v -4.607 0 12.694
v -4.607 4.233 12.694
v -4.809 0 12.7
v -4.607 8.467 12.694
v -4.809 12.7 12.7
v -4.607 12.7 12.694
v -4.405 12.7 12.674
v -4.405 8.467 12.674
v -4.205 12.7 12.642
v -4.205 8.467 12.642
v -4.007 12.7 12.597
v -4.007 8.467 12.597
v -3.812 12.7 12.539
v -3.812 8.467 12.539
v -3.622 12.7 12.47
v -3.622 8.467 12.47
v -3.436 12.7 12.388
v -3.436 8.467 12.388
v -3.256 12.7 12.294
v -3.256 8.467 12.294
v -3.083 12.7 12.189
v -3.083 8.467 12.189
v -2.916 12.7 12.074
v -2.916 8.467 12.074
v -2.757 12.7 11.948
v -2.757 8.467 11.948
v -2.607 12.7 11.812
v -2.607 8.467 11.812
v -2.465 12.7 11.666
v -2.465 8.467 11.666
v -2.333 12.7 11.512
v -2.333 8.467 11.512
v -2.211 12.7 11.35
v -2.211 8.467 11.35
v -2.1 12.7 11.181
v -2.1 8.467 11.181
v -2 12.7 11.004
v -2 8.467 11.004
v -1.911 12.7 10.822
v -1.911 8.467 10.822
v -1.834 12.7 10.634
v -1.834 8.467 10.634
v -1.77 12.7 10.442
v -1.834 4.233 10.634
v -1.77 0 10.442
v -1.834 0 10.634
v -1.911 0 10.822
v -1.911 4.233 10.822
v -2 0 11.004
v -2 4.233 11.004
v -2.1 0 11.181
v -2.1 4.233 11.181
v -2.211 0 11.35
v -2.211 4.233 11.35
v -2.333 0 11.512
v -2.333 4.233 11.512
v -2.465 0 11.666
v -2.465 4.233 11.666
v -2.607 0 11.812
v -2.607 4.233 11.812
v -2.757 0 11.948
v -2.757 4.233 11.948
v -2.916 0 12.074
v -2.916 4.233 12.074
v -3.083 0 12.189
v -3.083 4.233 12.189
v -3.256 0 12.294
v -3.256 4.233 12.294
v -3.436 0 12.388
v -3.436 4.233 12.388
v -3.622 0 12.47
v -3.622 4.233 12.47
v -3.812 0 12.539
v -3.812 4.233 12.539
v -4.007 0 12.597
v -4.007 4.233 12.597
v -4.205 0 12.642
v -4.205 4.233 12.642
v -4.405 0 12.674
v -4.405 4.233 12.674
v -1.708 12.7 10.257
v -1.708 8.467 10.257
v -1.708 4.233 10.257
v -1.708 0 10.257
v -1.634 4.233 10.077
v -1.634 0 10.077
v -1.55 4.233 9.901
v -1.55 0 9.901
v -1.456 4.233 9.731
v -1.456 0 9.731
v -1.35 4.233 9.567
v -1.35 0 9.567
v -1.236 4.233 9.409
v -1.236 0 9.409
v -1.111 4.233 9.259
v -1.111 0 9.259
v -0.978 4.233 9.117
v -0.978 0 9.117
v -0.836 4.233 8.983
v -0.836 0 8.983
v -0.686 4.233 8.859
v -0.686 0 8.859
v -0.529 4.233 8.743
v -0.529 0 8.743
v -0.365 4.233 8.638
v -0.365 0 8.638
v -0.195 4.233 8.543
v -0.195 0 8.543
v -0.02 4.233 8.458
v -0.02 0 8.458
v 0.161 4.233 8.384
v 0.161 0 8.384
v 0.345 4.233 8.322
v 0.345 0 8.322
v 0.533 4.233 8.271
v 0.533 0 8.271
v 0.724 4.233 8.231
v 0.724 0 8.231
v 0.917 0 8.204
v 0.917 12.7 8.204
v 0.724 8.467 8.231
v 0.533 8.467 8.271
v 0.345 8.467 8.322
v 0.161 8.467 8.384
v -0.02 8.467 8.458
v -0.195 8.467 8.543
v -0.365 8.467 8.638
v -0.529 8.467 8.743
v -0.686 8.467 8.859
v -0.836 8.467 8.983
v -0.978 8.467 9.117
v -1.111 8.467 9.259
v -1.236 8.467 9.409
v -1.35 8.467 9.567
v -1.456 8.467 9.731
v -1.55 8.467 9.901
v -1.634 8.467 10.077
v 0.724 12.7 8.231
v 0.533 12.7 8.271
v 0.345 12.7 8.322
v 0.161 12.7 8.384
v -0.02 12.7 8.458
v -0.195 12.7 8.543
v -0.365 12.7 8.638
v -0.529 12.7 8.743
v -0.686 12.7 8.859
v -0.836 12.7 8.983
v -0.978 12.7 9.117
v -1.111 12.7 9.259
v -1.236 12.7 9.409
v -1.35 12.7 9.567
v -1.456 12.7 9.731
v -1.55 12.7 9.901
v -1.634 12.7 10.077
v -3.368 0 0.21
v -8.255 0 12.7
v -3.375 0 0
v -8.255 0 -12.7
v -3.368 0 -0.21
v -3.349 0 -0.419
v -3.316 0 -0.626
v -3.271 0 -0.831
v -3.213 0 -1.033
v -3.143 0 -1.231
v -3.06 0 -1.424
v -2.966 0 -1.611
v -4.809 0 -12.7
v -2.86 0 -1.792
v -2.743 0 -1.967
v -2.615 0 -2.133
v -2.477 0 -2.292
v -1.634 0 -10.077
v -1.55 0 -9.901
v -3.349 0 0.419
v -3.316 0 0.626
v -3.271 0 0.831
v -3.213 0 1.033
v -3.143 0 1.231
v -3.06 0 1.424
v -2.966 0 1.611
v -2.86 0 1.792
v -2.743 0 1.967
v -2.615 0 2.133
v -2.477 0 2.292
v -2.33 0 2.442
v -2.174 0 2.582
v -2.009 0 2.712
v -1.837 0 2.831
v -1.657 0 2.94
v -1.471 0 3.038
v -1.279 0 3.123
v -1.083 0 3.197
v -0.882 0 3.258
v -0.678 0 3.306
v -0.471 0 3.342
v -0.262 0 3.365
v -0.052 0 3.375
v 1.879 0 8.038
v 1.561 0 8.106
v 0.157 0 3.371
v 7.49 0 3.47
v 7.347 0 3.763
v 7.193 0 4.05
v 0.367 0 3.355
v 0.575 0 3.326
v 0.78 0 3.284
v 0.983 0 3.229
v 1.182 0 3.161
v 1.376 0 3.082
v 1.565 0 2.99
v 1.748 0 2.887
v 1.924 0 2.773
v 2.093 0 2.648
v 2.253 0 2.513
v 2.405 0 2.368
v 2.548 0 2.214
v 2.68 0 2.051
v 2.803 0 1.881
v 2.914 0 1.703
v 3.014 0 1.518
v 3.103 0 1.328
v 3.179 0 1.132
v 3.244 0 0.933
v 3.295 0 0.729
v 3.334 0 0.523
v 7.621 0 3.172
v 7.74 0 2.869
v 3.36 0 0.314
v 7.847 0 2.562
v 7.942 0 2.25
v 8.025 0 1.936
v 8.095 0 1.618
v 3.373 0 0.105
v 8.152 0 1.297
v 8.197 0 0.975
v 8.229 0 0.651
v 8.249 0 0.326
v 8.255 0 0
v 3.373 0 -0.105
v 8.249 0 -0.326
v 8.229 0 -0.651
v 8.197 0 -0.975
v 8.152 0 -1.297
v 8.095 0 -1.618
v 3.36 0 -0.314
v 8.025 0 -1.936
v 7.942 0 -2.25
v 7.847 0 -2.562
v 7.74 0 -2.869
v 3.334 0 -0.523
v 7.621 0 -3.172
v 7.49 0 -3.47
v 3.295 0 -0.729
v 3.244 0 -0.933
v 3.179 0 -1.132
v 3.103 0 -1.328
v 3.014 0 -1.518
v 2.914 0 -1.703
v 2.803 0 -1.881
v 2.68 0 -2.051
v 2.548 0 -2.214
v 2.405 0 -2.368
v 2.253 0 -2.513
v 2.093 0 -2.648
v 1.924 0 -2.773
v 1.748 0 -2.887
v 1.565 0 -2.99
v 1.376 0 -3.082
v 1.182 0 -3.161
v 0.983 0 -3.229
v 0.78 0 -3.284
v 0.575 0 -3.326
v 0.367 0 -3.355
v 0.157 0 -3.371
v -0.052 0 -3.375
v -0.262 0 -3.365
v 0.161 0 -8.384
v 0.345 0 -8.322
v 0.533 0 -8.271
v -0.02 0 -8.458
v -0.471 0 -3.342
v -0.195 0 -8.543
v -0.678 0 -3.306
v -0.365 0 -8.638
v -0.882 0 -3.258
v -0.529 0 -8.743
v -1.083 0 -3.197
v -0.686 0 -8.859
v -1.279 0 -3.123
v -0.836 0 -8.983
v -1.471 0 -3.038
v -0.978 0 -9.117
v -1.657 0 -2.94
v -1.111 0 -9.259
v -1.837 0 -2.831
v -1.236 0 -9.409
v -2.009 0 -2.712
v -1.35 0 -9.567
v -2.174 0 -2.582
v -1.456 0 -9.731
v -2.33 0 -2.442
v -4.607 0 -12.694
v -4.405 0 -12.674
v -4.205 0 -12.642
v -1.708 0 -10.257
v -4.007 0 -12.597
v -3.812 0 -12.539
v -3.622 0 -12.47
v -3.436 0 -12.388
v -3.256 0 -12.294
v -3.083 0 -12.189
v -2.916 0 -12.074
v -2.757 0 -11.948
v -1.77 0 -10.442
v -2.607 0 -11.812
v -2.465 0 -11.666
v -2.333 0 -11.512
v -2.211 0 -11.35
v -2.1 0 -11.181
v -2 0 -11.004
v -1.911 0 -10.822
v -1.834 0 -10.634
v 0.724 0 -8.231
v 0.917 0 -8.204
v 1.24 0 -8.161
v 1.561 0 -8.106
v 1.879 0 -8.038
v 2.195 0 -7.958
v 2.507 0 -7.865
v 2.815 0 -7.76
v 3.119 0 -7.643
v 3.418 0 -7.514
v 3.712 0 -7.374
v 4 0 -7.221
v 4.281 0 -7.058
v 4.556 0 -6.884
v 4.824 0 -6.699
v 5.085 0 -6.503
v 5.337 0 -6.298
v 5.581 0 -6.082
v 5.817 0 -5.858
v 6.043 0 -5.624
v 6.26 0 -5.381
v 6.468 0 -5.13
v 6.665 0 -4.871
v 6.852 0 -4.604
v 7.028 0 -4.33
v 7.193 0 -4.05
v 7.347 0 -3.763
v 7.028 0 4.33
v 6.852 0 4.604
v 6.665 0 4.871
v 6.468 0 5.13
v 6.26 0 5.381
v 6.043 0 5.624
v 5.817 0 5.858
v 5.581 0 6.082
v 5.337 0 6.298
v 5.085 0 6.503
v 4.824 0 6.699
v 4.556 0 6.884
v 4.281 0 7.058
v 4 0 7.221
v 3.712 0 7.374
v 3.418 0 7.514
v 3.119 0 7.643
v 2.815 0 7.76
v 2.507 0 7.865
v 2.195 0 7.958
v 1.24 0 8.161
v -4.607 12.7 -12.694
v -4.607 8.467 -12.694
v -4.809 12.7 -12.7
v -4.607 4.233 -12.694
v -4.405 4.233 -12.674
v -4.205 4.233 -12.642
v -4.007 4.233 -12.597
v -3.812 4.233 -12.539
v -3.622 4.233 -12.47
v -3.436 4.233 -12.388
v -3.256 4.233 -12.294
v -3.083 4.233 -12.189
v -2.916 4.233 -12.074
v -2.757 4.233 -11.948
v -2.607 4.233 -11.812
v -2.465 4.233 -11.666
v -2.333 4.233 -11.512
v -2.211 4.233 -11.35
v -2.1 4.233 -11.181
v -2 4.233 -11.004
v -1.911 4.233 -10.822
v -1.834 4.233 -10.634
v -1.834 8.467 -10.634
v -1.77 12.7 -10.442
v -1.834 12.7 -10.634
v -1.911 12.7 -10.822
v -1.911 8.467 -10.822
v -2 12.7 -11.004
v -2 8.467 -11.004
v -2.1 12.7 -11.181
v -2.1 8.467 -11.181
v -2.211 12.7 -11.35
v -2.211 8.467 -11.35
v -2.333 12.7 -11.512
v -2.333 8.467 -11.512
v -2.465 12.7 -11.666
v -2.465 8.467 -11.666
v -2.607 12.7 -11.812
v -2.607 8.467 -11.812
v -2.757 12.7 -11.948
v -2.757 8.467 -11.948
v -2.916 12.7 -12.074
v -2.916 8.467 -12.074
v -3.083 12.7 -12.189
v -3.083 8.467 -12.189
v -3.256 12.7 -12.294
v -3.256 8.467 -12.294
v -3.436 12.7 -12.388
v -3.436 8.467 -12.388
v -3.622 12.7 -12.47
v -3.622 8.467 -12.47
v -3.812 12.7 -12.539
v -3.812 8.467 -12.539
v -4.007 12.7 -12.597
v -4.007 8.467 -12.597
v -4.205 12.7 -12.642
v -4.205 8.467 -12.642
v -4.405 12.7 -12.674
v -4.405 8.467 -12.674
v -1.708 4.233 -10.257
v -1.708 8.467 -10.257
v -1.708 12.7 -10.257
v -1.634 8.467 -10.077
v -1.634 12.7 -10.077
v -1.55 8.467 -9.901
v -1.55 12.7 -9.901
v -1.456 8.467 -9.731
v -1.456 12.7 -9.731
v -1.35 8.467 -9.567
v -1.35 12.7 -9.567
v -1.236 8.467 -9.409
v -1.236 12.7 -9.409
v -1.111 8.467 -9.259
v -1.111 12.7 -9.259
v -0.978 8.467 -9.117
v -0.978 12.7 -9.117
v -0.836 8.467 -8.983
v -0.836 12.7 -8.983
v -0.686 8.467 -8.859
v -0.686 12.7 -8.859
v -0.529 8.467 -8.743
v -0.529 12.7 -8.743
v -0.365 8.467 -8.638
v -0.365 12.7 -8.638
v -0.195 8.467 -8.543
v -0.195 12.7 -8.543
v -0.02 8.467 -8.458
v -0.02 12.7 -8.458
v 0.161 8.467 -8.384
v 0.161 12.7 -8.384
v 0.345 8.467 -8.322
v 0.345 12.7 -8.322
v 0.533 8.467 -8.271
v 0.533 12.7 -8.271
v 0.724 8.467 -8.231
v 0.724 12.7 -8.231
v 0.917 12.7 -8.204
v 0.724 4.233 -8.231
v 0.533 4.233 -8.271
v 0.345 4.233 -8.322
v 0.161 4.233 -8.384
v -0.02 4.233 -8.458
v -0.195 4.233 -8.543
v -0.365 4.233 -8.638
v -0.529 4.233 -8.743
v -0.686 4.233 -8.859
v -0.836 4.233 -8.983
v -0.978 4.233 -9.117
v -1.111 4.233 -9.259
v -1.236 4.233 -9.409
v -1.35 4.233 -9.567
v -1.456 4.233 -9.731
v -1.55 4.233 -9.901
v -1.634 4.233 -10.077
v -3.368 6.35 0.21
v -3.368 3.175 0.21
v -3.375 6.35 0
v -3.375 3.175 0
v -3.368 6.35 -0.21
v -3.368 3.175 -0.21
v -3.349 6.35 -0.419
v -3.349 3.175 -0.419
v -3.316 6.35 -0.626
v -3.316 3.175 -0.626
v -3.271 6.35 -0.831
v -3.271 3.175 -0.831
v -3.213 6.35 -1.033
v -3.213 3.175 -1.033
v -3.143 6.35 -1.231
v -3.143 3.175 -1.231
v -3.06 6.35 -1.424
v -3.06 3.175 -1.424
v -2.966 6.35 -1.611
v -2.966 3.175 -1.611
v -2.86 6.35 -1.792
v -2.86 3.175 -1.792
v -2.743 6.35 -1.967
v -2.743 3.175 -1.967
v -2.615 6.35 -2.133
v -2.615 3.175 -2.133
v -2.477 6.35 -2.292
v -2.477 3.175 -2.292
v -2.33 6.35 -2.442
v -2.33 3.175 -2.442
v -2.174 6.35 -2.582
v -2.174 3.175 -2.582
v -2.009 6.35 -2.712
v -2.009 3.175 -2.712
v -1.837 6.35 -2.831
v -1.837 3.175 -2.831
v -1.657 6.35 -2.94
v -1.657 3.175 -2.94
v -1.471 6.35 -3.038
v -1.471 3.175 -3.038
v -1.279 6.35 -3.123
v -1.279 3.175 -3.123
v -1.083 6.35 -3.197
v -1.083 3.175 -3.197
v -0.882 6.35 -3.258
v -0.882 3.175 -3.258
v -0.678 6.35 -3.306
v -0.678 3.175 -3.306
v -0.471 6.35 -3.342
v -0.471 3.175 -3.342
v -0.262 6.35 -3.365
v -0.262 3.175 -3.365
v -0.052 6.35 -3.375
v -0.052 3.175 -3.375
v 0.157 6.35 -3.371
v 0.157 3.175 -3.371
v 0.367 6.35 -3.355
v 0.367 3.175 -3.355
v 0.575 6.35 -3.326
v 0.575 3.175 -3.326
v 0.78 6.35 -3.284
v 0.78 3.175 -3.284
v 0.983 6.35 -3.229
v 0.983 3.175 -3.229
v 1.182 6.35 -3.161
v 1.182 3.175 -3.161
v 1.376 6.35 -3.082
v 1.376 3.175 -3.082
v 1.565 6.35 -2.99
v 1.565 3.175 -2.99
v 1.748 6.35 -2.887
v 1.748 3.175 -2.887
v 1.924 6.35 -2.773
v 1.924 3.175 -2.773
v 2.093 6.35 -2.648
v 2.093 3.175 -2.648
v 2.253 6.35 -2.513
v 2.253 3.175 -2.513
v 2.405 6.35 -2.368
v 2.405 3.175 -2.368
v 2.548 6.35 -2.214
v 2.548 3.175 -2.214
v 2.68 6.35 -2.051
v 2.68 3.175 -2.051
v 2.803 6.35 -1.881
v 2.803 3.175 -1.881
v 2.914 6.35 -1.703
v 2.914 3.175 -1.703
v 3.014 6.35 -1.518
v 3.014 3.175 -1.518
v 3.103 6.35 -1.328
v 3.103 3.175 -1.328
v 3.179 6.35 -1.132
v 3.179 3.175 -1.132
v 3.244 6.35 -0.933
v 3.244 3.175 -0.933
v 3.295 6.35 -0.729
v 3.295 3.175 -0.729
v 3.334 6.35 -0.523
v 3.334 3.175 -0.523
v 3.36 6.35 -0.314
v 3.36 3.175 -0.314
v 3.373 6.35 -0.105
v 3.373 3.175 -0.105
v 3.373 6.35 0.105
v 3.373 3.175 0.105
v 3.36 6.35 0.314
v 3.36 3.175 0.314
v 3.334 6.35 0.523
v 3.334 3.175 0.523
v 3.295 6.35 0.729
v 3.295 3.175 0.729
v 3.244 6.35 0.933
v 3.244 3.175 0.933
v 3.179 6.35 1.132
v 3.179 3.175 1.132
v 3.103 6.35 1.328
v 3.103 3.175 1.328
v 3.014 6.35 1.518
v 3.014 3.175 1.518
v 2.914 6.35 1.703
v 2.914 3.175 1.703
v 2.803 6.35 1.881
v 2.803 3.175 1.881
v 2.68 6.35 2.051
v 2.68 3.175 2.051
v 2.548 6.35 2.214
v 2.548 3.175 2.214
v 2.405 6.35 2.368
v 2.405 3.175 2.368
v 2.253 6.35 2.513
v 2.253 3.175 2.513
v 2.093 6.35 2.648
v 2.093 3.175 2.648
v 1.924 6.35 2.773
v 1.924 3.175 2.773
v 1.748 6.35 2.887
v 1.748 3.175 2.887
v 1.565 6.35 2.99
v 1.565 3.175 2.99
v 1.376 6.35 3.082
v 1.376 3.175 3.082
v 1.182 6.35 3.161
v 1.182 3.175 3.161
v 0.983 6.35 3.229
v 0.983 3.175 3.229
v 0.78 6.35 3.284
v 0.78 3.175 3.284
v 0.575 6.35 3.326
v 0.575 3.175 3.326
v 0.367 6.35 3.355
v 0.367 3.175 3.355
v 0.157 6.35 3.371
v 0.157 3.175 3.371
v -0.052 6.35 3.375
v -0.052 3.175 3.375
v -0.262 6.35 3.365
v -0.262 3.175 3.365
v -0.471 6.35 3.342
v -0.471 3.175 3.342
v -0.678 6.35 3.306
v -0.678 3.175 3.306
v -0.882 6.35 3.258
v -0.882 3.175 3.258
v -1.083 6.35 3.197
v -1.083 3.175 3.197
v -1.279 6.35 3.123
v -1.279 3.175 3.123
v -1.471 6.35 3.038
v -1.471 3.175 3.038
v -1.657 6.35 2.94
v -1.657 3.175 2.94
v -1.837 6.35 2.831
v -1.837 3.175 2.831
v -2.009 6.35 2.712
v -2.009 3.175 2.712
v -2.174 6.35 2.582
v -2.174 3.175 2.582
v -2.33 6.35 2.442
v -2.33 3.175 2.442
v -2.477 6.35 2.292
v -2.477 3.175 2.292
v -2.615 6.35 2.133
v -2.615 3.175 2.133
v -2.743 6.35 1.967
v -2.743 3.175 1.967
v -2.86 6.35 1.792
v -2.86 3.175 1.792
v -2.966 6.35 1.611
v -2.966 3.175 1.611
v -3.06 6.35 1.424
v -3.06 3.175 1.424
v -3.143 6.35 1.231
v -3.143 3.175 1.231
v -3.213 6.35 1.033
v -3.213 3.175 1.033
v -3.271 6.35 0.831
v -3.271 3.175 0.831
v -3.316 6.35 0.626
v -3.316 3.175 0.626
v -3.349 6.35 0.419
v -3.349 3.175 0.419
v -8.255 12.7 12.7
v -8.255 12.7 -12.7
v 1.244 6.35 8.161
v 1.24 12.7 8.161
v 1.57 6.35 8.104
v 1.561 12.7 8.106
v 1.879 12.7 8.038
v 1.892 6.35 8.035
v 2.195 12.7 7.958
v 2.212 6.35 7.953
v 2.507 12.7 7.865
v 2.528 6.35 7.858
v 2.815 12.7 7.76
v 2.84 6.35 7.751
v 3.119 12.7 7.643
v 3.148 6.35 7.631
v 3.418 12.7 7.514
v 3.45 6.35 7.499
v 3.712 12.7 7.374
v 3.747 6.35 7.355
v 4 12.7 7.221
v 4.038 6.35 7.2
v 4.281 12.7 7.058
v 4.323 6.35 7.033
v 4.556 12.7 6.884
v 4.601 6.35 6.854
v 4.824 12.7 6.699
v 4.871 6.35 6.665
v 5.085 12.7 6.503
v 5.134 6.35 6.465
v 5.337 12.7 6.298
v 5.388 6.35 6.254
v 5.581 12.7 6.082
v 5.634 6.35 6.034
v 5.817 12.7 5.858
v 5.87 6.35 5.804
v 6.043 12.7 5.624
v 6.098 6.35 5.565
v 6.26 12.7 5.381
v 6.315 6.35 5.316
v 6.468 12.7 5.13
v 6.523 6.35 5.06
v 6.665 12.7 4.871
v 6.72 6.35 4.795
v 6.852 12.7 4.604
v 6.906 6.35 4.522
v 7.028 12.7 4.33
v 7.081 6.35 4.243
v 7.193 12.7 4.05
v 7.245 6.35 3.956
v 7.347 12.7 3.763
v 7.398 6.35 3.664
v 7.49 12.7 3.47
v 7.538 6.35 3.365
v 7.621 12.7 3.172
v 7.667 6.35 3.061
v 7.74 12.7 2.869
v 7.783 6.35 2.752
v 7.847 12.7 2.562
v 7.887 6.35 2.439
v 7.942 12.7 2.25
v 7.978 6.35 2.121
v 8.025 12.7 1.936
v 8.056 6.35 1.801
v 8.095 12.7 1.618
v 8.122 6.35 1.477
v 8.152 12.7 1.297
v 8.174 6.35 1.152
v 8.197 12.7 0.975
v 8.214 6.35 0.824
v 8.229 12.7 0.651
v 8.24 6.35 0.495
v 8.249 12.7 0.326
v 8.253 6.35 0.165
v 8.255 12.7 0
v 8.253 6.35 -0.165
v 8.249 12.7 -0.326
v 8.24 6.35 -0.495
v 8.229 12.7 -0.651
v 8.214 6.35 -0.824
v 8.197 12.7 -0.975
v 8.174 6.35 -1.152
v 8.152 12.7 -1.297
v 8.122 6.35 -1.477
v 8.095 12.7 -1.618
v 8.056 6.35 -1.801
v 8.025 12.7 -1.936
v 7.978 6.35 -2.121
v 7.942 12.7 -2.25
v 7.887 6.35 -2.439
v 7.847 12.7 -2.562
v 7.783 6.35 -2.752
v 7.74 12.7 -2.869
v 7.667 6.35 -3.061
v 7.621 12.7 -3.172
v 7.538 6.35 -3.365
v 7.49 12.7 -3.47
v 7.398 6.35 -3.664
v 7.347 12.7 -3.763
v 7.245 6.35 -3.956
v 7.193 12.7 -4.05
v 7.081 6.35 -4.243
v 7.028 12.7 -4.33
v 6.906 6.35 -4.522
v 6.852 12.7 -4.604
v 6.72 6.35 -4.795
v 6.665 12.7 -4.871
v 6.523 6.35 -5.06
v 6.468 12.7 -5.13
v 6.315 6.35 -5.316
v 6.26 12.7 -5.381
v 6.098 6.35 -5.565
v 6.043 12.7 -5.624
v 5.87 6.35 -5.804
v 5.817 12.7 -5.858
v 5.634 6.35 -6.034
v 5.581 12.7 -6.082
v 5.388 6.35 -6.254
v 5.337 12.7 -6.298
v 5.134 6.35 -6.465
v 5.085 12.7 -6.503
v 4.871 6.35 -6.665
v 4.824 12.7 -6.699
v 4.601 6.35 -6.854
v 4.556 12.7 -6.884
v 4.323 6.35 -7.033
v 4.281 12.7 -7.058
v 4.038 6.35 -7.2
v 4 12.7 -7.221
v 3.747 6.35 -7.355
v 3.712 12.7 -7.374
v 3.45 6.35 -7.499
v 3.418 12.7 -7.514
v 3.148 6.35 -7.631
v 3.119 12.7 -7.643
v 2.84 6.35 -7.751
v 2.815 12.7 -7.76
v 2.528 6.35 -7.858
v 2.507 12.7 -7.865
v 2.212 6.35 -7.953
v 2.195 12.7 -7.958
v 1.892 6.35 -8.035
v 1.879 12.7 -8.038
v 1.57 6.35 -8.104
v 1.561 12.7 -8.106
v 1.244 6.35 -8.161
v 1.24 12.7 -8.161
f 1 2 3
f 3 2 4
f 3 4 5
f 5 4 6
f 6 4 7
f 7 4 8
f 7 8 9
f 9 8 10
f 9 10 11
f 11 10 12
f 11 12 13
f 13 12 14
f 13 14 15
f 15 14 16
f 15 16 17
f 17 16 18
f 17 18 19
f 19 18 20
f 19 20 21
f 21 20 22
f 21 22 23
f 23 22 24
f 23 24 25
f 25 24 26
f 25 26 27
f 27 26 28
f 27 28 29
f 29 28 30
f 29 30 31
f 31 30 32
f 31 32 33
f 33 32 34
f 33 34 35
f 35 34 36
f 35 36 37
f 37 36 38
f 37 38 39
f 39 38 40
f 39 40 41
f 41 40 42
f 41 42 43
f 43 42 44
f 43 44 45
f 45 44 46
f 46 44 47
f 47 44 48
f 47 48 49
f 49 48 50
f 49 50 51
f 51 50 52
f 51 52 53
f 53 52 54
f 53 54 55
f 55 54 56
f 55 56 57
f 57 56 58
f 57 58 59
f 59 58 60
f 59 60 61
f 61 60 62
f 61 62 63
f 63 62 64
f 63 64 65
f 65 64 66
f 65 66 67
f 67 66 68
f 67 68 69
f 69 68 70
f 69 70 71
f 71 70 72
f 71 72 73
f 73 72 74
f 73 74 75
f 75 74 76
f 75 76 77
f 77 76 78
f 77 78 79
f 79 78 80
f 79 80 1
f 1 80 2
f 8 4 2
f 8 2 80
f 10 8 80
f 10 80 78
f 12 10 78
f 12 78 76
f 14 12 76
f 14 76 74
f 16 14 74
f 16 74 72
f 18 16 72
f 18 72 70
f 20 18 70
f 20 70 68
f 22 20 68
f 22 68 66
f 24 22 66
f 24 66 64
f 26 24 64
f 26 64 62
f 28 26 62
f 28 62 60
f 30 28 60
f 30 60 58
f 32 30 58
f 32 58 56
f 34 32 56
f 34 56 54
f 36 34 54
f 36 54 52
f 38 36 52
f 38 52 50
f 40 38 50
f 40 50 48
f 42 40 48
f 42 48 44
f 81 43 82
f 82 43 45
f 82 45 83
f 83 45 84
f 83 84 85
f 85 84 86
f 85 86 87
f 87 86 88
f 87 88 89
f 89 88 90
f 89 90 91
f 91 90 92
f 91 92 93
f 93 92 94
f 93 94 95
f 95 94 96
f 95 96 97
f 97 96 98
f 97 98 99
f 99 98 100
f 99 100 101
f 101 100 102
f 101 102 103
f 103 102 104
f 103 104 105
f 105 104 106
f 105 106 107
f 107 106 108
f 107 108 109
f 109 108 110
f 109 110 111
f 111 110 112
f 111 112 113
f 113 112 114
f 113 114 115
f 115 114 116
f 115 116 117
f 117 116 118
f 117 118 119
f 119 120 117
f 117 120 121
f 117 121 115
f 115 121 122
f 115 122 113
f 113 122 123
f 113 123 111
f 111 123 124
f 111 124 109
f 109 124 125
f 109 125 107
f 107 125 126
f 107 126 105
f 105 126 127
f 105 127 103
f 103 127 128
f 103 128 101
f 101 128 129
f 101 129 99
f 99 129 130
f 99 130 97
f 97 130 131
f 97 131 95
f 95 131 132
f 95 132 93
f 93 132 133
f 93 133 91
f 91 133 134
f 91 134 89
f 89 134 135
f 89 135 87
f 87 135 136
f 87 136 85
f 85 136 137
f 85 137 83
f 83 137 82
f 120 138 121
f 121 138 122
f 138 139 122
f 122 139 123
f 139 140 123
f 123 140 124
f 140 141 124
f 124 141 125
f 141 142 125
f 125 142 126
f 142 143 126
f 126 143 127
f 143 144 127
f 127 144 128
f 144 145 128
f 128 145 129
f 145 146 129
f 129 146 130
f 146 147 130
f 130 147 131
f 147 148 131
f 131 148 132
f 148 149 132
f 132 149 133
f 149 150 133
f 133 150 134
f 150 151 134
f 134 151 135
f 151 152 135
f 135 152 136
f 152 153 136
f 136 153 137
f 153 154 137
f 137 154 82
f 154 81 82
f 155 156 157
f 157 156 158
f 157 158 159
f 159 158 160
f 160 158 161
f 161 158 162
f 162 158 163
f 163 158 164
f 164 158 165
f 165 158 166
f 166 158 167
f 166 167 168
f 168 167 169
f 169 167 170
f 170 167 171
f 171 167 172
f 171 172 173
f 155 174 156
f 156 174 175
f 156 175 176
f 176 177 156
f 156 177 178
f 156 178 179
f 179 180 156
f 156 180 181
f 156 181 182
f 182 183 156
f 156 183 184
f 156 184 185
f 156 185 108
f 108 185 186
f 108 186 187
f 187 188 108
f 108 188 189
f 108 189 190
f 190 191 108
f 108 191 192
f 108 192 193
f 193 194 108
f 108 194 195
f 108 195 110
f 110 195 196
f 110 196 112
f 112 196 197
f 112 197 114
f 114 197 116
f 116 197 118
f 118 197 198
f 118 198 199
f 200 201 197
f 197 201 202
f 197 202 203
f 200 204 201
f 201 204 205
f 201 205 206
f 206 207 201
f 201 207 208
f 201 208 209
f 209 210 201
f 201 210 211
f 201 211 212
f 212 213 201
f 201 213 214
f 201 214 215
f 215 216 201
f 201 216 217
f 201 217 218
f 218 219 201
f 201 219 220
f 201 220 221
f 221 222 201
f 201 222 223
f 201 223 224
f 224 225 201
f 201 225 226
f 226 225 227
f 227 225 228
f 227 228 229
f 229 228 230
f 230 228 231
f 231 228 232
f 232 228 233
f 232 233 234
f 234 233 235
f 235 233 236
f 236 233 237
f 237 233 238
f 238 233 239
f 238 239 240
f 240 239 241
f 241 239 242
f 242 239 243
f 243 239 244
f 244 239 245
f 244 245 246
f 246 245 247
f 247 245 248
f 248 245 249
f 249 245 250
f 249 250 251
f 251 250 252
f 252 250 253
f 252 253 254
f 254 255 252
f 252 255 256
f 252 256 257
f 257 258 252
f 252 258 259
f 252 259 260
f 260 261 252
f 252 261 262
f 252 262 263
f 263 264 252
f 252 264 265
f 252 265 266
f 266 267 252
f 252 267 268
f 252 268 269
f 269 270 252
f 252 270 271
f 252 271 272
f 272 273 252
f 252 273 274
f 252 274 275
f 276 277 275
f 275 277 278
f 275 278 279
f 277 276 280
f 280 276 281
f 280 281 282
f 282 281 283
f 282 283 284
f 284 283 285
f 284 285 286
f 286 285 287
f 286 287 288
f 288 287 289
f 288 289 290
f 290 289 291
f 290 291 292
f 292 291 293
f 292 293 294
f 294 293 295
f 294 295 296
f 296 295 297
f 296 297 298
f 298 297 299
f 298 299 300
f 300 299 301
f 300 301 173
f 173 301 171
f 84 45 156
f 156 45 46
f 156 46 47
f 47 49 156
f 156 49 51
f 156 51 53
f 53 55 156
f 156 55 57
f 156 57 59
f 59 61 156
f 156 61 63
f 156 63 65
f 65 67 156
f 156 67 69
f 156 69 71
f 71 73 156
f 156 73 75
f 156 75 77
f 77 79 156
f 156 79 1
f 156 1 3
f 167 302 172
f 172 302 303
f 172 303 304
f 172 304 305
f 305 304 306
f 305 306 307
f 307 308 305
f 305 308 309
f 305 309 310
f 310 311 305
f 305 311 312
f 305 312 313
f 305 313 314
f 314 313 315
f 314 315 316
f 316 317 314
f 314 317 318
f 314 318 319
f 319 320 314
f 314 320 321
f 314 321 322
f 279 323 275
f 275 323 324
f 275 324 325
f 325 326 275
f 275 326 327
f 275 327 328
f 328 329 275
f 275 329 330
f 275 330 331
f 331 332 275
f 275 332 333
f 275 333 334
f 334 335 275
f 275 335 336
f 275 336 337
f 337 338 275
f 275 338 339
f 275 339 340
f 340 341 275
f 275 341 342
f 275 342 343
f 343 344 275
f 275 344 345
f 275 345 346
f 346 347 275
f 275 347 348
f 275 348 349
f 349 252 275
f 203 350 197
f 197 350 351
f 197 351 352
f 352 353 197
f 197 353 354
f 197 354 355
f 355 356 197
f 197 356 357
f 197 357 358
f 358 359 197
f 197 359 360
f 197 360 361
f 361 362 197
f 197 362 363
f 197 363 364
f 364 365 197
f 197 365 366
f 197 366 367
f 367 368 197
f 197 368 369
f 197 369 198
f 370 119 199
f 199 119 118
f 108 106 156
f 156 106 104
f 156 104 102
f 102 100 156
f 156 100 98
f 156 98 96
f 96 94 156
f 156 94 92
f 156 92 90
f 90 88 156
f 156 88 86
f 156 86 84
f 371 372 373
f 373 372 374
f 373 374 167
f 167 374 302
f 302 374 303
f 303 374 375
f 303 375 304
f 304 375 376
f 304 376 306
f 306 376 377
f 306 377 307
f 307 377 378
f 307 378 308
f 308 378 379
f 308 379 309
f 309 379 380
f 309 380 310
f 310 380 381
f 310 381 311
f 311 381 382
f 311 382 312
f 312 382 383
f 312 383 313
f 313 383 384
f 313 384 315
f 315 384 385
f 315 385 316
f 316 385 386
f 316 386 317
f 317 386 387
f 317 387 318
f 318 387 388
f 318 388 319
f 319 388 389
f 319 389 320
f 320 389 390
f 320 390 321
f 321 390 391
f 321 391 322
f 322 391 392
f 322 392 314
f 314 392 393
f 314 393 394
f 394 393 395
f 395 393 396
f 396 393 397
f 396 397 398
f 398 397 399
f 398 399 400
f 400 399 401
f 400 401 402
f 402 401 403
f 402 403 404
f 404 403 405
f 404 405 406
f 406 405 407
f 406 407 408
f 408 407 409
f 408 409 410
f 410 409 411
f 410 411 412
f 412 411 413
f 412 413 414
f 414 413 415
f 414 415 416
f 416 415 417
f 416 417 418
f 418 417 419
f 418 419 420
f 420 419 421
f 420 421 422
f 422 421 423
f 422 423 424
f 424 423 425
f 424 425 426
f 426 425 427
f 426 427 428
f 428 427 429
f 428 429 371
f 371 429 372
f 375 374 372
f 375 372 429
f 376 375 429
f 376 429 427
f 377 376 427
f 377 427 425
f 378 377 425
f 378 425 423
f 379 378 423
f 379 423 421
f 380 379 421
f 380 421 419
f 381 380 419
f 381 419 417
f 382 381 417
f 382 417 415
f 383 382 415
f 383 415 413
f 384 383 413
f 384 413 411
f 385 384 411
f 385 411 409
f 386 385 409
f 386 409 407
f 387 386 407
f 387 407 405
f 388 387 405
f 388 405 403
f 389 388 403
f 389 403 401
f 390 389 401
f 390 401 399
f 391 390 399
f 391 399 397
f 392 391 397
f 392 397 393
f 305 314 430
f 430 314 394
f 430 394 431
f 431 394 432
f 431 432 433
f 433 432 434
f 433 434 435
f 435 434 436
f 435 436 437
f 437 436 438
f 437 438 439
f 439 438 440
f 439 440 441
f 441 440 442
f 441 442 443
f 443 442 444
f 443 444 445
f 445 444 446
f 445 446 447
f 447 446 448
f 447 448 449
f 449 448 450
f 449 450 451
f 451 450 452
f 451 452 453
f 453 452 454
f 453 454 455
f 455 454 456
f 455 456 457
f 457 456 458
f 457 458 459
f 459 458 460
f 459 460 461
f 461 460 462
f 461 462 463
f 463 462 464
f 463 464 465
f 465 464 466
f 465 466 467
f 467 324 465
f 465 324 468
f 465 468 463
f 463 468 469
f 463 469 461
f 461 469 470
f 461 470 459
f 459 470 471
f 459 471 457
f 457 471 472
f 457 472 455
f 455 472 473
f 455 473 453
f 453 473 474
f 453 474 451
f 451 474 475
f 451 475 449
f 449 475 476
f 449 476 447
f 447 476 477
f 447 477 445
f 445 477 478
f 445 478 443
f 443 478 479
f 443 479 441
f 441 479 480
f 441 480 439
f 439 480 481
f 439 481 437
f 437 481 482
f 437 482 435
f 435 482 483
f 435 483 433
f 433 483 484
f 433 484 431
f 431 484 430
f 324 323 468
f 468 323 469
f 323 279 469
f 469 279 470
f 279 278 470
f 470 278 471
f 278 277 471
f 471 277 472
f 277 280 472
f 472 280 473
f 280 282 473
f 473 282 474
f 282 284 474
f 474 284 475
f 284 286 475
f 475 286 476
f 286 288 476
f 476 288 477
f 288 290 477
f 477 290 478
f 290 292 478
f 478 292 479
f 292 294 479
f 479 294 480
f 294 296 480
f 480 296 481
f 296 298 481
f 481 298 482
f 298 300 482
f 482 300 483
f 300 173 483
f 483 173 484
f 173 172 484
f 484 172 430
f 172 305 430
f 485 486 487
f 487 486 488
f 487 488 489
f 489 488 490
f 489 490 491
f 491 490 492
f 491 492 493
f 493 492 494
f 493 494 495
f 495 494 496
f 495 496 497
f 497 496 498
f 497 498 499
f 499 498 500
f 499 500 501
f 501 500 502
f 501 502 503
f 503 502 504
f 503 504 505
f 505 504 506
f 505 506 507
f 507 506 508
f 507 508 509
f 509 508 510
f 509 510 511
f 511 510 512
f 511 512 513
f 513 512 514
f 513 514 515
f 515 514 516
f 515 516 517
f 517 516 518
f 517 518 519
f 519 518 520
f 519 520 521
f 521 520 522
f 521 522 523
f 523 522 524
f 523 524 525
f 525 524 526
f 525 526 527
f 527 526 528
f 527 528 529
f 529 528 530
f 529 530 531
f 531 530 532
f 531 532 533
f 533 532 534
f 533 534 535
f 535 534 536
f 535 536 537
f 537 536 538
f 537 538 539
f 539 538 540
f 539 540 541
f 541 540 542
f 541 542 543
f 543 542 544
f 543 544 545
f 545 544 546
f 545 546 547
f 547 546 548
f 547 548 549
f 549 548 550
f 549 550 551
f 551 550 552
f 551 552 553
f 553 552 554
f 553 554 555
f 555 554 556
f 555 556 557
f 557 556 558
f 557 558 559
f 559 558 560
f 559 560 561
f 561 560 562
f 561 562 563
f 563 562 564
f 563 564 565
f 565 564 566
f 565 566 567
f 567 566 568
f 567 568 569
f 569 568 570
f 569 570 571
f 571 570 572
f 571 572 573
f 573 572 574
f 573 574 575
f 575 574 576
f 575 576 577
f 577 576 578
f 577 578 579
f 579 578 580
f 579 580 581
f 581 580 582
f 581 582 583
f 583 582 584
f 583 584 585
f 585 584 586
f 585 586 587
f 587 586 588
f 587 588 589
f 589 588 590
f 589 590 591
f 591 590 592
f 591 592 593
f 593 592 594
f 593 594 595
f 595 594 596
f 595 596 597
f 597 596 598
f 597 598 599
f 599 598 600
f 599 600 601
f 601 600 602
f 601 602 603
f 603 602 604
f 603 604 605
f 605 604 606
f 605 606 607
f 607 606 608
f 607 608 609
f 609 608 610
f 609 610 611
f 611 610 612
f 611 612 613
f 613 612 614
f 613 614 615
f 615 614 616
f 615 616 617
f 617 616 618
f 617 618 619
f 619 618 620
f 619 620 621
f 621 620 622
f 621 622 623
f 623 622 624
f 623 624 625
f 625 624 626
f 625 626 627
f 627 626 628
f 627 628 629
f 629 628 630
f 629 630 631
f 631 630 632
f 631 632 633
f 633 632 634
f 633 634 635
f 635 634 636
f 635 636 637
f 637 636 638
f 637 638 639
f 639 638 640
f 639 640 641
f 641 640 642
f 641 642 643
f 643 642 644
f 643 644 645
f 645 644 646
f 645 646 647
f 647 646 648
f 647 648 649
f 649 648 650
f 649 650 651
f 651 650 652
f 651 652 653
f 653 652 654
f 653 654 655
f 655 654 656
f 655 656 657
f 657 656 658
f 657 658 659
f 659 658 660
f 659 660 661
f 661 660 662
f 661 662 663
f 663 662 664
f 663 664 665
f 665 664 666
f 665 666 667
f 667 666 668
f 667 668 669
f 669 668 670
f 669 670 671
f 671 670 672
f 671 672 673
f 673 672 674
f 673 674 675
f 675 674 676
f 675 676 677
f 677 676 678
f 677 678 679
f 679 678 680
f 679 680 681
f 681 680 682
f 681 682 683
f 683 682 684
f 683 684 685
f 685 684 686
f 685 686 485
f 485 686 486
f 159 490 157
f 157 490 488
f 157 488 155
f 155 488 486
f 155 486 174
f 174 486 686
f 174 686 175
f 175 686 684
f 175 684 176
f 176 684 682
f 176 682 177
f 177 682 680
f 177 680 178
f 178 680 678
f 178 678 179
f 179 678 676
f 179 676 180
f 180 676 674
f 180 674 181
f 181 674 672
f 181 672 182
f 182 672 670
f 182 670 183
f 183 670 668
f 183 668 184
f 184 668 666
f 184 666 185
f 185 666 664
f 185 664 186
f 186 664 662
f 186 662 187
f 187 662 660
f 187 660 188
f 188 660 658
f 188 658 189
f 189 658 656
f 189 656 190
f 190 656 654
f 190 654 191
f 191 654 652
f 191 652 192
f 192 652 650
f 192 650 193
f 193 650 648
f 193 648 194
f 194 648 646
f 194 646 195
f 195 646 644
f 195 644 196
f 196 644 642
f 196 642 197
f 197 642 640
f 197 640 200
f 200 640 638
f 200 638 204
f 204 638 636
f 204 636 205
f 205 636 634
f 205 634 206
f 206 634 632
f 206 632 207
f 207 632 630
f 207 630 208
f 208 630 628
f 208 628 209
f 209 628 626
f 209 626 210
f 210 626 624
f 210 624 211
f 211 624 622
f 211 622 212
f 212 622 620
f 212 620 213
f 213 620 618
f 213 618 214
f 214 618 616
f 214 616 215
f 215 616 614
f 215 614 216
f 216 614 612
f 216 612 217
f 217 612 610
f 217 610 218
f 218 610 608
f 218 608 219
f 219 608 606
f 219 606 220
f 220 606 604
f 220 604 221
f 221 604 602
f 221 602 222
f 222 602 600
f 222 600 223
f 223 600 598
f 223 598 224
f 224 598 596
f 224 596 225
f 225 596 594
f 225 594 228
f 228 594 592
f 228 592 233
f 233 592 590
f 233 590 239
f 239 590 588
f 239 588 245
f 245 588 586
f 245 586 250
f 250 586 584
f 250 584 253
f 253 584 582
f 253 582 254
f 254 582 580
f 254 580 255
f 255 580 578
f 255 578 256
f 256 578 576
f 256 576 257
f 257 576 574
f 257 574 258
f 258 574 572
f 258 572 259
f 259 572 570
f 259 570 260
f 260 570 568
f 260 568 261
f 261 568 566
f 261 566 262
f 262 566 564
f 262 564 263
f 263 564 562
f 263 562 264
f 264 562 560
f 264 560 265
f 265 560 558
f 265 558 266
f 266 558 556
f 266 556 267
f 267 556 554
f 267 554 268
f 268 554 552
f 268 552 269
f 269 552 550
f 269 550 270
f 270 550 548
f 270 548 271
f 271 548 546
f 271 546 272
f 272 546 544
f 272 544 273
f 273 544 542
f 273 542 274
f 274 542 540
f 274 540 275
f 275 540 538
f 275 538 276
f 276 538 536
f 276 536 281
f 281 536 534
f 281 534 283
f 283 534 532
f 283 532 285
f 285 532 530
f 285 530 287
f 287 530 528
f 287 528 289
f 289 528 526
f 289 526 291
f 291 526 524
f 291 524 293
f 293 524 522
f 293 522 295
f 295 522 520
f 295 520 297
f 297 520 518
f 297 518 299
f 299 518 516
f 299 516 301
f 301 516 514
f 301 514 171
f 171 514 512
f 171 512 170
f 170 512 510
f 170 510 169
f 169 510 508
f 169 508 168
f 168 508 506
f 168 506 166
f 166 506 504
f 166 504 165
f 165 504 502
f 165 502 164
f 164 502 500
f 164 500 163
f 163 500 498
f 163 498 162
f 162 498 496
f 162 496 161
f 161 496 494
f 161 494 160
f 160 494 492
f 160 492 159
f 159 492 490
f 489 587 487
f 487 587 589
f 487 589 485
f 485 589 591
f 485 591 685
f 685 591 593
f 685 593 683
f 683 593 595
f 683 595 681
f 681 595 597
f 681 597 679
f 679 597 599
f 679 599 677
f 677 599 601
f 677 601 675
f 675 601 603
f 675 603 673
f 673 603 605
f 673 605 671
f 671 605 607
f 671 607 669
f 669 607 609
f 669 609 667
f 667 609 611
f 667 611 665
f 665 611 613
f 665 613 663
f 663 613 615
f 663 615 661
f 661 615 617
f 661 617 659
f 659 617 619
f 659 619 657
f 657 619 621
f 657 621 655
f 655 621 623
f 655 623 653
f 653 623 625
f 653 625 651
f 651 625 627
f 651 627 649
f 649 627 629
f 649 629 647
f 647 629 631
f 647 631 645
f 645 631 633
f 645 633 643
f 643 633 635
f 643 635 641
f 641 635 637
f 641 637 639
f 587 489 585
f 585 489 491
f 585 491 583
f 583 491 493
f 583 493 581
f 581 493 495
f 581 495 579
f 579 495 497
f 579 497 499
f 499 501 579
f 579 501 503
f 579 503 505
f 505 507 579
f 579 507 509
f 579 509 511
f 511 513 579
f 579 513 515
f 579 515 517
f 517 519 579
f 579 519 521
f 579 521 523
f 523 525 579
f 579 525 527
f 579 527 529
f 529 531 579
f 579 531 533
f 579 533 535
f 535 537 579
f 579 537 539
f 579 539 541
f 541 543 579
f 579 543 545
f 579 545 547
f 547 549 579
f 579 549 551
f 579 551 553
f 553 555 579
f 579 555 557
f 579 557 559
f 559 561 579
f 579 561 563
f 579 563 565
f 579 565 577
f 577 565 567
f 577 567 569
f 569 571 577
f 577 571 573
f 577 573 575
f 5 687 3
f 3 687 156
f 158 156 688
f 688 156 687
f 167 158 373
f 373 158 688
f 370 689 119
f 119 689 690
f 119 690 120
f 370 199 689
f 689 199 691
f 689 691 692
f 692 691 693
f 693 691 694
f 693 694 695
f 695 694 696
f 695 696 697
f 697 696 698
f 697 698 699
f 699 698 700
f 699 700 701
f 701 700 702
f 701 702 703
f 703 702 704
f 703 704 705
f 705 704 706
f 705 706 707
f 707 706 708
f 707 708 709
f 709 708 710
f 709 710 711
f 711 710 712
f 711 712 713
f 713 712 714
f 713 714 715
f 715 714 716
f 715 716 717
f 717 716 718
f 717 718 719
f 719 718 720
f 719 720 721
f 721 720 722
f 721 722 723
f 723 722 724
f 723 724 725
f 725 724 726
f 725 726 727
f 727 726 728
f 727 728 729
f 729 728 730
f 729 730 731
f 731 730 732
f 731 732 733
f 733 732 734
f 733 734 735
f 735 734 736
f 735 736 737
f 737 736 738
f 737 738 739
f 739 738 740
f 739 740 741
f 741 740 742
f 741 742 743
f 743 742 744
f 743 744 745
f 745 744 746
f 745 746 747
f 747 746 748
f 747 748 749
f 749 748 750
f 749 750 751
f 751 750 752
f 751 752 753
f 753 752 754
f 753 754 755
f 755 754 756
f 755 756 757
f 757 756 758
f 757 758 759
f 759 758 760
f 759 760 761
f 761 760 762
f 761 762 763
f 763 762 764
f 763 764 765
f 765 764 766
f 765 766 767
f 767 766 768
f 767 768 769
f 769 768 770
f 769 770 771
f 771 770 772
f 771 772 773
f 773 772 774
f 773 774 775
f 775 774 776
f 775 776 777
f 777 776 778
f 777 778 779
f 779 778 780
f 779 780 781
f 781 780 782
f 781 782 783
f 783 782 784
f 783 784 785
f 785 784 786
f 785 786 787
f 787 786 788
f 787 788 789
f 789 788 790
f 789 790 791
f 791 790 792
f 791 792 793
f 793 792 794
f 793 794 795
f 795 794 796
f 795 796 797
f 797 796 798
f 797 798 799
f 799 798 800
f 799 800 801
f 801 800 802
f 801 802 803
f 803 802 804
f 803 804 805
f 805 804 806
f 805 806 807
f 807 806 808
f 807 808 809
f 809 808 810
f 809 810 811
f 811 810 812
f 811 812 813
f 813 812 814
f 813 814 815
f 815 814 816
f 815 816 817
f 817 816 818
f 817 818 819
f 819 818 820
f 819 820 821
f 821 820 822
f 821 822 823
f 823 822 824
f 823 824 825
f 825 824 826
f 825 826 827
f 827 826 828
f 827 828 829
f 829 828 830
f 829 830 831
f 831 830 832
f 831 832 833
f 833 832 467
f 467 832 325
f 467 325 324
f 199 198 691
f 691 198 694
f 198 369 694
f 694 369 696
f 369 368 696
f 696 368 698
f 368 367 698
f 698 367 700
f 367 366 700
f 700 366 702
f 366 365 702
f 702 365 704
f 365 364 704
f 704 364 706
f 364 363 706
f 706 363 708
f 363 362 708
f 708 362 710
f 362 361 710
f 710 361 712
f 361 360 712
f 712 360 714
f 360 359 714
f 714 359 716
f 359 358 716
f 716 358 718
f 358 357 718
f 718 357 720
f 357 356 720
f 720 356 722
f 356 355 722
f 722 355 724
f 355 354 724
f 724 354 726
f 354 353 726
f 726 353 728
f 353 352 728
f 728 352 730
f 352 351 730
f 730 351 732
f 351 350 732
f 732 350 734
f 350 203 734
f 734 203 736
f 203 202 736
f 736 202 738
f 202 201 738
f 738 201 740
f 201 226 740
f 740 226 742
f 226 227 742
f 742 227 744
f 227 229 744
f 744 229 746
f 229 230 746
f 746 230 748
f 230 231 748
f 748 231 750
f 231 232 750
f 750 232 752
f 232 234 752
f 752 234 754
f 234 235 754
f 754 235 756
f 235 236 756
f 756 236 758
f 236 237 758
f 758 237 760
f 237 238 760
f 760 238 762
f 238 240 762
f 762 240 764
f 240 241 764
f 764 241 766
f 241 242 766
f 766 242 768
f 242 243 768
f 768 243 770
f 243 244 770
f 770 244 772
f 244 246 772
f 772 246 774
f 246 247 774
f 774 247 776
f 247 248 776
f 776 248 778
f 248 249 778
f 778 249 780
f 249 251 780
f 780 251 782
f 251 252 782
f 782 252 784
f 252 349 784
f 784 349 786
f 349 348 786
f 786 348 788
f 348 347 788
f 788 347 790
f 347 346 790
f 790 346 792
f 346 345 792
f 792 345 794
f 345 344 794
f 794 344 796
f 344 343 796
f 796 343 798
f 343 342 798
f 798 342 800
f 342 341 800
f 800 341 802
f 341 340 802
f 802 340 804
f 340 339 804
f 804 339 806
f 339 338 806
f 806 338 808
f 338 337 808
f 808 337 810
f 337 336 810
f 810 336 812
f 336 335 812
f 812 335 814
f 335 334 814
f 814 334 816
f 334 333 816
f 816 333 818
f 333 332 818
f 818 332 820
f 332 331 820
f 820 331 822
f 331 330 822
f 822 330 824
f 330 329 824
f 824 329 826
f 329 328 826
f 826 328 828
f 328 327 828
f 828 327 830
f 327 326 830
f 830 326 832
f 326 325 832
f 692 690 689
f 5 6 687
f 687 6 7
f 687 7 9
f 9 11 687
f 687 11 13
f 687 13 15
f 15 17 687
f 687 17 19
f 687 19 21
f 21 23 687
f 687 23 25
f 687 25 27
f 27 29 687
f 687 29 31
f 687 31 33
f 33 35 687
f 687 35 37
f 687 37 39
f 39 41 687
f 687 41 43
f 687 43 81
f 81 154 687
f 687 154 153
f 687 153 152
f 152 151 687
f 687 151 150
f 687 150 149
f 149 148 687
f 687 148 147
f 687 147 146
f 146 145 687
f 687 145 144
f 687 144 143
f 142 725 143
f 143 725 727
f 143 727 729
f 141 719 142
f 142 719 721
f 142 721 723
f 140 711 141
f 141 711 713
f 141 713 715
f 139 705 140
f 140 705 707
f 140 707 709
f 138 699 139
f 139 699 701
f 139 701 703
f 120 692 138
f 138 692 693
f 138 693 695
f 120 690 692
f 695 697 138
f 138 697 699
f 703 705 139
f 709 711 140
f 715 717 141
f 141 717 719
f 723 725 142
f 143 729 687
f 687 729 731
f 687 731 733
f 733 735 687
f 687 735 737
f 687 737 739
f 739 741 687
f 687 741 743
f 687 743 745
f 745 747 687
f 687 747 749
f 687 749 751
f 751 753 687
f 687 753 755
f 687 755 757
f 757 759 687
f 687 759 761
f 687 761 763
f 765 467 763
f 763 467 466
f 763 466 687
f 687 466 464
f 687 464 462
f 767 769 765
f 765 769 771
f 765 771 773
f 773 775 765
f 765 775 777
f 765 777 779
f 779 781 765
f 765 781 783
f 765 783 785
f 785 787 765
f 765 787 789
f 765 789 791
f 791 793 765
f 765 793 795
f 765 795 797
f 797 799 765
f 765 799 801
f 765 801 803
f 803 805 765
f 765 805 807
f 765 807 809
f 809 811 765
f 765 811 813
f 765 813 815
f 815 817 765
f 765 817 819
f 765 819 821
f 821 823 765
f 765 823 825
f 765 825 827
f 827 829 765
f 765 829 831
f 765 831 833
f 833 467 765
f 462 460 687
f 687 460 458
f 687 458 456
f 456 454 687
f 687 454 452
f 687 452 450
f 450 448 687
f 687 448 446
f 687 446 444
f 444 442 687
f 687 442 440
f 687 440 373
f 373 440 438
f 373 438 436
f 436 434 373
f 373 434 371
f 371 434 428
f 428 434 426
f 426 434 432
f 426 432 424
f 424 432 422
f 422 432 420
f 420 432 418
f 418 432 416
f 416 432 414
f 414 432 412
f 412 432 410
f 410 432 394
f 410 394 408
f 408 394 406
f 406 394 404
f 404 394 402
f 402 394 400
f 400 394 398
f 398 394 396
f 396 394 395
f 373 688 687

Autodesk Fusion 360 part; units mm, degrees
sketch "Sketch1" plane through (0, 0, 0) normal (0, 1, 0) x (1, 0, 0)
  circle A0 centre (0, 0) radius 3.175
  circle A1 centre (0, 0) radius 8.255
  line L0 (-1.905, -12.7) -> (-8.255, -12.7)
  line L1 (-8.255, -12.7) -> (-8.255, 12.7)
  line L2 (-8.255, 12.7) -> (-1.905, 12.7)
  line L3 (-1.905, 12.7) -> (-1.905, -12.7)
  circle A2 centre (1.27, -11.3592) radius 3.175
  circle A3 centre (1.27, 11.3592) radius 3.175
  circle A4 centre (0, 0) radius 3.375
  point P0 (-8.255, 0)
  dimension "d1" = 6.35
  dimension "d2" = 5.08
  dimension "d3" = 6.35
  dimension "d4" = 25.4
  dimension "d5" = 6.35
  dimension "d10" = 0.2
extrude "Extrude1" add sketch "Sketch1" along normal blind 12.7 contours A0 L3 | A0 L3 A4 | A0 L3 | A0 L3 A4 | A1 L3 A4 | A1 L3 A4 | A1 L3 A3 | A1 L1 L2 L3 | A1 L0 L1 L3 | A1 L3 A2
extrude "Extrude2" cut sketch "Sketch1" along normal blind 6.35 contours A0 L3 | A0 L3 A4 | A0 L3 | A0 L3 A4
fillet "Fillet5" radius 3.175 2 edges at (-1.905, 6.35, -12.7) (-1.905, 6.35, 12.7)
